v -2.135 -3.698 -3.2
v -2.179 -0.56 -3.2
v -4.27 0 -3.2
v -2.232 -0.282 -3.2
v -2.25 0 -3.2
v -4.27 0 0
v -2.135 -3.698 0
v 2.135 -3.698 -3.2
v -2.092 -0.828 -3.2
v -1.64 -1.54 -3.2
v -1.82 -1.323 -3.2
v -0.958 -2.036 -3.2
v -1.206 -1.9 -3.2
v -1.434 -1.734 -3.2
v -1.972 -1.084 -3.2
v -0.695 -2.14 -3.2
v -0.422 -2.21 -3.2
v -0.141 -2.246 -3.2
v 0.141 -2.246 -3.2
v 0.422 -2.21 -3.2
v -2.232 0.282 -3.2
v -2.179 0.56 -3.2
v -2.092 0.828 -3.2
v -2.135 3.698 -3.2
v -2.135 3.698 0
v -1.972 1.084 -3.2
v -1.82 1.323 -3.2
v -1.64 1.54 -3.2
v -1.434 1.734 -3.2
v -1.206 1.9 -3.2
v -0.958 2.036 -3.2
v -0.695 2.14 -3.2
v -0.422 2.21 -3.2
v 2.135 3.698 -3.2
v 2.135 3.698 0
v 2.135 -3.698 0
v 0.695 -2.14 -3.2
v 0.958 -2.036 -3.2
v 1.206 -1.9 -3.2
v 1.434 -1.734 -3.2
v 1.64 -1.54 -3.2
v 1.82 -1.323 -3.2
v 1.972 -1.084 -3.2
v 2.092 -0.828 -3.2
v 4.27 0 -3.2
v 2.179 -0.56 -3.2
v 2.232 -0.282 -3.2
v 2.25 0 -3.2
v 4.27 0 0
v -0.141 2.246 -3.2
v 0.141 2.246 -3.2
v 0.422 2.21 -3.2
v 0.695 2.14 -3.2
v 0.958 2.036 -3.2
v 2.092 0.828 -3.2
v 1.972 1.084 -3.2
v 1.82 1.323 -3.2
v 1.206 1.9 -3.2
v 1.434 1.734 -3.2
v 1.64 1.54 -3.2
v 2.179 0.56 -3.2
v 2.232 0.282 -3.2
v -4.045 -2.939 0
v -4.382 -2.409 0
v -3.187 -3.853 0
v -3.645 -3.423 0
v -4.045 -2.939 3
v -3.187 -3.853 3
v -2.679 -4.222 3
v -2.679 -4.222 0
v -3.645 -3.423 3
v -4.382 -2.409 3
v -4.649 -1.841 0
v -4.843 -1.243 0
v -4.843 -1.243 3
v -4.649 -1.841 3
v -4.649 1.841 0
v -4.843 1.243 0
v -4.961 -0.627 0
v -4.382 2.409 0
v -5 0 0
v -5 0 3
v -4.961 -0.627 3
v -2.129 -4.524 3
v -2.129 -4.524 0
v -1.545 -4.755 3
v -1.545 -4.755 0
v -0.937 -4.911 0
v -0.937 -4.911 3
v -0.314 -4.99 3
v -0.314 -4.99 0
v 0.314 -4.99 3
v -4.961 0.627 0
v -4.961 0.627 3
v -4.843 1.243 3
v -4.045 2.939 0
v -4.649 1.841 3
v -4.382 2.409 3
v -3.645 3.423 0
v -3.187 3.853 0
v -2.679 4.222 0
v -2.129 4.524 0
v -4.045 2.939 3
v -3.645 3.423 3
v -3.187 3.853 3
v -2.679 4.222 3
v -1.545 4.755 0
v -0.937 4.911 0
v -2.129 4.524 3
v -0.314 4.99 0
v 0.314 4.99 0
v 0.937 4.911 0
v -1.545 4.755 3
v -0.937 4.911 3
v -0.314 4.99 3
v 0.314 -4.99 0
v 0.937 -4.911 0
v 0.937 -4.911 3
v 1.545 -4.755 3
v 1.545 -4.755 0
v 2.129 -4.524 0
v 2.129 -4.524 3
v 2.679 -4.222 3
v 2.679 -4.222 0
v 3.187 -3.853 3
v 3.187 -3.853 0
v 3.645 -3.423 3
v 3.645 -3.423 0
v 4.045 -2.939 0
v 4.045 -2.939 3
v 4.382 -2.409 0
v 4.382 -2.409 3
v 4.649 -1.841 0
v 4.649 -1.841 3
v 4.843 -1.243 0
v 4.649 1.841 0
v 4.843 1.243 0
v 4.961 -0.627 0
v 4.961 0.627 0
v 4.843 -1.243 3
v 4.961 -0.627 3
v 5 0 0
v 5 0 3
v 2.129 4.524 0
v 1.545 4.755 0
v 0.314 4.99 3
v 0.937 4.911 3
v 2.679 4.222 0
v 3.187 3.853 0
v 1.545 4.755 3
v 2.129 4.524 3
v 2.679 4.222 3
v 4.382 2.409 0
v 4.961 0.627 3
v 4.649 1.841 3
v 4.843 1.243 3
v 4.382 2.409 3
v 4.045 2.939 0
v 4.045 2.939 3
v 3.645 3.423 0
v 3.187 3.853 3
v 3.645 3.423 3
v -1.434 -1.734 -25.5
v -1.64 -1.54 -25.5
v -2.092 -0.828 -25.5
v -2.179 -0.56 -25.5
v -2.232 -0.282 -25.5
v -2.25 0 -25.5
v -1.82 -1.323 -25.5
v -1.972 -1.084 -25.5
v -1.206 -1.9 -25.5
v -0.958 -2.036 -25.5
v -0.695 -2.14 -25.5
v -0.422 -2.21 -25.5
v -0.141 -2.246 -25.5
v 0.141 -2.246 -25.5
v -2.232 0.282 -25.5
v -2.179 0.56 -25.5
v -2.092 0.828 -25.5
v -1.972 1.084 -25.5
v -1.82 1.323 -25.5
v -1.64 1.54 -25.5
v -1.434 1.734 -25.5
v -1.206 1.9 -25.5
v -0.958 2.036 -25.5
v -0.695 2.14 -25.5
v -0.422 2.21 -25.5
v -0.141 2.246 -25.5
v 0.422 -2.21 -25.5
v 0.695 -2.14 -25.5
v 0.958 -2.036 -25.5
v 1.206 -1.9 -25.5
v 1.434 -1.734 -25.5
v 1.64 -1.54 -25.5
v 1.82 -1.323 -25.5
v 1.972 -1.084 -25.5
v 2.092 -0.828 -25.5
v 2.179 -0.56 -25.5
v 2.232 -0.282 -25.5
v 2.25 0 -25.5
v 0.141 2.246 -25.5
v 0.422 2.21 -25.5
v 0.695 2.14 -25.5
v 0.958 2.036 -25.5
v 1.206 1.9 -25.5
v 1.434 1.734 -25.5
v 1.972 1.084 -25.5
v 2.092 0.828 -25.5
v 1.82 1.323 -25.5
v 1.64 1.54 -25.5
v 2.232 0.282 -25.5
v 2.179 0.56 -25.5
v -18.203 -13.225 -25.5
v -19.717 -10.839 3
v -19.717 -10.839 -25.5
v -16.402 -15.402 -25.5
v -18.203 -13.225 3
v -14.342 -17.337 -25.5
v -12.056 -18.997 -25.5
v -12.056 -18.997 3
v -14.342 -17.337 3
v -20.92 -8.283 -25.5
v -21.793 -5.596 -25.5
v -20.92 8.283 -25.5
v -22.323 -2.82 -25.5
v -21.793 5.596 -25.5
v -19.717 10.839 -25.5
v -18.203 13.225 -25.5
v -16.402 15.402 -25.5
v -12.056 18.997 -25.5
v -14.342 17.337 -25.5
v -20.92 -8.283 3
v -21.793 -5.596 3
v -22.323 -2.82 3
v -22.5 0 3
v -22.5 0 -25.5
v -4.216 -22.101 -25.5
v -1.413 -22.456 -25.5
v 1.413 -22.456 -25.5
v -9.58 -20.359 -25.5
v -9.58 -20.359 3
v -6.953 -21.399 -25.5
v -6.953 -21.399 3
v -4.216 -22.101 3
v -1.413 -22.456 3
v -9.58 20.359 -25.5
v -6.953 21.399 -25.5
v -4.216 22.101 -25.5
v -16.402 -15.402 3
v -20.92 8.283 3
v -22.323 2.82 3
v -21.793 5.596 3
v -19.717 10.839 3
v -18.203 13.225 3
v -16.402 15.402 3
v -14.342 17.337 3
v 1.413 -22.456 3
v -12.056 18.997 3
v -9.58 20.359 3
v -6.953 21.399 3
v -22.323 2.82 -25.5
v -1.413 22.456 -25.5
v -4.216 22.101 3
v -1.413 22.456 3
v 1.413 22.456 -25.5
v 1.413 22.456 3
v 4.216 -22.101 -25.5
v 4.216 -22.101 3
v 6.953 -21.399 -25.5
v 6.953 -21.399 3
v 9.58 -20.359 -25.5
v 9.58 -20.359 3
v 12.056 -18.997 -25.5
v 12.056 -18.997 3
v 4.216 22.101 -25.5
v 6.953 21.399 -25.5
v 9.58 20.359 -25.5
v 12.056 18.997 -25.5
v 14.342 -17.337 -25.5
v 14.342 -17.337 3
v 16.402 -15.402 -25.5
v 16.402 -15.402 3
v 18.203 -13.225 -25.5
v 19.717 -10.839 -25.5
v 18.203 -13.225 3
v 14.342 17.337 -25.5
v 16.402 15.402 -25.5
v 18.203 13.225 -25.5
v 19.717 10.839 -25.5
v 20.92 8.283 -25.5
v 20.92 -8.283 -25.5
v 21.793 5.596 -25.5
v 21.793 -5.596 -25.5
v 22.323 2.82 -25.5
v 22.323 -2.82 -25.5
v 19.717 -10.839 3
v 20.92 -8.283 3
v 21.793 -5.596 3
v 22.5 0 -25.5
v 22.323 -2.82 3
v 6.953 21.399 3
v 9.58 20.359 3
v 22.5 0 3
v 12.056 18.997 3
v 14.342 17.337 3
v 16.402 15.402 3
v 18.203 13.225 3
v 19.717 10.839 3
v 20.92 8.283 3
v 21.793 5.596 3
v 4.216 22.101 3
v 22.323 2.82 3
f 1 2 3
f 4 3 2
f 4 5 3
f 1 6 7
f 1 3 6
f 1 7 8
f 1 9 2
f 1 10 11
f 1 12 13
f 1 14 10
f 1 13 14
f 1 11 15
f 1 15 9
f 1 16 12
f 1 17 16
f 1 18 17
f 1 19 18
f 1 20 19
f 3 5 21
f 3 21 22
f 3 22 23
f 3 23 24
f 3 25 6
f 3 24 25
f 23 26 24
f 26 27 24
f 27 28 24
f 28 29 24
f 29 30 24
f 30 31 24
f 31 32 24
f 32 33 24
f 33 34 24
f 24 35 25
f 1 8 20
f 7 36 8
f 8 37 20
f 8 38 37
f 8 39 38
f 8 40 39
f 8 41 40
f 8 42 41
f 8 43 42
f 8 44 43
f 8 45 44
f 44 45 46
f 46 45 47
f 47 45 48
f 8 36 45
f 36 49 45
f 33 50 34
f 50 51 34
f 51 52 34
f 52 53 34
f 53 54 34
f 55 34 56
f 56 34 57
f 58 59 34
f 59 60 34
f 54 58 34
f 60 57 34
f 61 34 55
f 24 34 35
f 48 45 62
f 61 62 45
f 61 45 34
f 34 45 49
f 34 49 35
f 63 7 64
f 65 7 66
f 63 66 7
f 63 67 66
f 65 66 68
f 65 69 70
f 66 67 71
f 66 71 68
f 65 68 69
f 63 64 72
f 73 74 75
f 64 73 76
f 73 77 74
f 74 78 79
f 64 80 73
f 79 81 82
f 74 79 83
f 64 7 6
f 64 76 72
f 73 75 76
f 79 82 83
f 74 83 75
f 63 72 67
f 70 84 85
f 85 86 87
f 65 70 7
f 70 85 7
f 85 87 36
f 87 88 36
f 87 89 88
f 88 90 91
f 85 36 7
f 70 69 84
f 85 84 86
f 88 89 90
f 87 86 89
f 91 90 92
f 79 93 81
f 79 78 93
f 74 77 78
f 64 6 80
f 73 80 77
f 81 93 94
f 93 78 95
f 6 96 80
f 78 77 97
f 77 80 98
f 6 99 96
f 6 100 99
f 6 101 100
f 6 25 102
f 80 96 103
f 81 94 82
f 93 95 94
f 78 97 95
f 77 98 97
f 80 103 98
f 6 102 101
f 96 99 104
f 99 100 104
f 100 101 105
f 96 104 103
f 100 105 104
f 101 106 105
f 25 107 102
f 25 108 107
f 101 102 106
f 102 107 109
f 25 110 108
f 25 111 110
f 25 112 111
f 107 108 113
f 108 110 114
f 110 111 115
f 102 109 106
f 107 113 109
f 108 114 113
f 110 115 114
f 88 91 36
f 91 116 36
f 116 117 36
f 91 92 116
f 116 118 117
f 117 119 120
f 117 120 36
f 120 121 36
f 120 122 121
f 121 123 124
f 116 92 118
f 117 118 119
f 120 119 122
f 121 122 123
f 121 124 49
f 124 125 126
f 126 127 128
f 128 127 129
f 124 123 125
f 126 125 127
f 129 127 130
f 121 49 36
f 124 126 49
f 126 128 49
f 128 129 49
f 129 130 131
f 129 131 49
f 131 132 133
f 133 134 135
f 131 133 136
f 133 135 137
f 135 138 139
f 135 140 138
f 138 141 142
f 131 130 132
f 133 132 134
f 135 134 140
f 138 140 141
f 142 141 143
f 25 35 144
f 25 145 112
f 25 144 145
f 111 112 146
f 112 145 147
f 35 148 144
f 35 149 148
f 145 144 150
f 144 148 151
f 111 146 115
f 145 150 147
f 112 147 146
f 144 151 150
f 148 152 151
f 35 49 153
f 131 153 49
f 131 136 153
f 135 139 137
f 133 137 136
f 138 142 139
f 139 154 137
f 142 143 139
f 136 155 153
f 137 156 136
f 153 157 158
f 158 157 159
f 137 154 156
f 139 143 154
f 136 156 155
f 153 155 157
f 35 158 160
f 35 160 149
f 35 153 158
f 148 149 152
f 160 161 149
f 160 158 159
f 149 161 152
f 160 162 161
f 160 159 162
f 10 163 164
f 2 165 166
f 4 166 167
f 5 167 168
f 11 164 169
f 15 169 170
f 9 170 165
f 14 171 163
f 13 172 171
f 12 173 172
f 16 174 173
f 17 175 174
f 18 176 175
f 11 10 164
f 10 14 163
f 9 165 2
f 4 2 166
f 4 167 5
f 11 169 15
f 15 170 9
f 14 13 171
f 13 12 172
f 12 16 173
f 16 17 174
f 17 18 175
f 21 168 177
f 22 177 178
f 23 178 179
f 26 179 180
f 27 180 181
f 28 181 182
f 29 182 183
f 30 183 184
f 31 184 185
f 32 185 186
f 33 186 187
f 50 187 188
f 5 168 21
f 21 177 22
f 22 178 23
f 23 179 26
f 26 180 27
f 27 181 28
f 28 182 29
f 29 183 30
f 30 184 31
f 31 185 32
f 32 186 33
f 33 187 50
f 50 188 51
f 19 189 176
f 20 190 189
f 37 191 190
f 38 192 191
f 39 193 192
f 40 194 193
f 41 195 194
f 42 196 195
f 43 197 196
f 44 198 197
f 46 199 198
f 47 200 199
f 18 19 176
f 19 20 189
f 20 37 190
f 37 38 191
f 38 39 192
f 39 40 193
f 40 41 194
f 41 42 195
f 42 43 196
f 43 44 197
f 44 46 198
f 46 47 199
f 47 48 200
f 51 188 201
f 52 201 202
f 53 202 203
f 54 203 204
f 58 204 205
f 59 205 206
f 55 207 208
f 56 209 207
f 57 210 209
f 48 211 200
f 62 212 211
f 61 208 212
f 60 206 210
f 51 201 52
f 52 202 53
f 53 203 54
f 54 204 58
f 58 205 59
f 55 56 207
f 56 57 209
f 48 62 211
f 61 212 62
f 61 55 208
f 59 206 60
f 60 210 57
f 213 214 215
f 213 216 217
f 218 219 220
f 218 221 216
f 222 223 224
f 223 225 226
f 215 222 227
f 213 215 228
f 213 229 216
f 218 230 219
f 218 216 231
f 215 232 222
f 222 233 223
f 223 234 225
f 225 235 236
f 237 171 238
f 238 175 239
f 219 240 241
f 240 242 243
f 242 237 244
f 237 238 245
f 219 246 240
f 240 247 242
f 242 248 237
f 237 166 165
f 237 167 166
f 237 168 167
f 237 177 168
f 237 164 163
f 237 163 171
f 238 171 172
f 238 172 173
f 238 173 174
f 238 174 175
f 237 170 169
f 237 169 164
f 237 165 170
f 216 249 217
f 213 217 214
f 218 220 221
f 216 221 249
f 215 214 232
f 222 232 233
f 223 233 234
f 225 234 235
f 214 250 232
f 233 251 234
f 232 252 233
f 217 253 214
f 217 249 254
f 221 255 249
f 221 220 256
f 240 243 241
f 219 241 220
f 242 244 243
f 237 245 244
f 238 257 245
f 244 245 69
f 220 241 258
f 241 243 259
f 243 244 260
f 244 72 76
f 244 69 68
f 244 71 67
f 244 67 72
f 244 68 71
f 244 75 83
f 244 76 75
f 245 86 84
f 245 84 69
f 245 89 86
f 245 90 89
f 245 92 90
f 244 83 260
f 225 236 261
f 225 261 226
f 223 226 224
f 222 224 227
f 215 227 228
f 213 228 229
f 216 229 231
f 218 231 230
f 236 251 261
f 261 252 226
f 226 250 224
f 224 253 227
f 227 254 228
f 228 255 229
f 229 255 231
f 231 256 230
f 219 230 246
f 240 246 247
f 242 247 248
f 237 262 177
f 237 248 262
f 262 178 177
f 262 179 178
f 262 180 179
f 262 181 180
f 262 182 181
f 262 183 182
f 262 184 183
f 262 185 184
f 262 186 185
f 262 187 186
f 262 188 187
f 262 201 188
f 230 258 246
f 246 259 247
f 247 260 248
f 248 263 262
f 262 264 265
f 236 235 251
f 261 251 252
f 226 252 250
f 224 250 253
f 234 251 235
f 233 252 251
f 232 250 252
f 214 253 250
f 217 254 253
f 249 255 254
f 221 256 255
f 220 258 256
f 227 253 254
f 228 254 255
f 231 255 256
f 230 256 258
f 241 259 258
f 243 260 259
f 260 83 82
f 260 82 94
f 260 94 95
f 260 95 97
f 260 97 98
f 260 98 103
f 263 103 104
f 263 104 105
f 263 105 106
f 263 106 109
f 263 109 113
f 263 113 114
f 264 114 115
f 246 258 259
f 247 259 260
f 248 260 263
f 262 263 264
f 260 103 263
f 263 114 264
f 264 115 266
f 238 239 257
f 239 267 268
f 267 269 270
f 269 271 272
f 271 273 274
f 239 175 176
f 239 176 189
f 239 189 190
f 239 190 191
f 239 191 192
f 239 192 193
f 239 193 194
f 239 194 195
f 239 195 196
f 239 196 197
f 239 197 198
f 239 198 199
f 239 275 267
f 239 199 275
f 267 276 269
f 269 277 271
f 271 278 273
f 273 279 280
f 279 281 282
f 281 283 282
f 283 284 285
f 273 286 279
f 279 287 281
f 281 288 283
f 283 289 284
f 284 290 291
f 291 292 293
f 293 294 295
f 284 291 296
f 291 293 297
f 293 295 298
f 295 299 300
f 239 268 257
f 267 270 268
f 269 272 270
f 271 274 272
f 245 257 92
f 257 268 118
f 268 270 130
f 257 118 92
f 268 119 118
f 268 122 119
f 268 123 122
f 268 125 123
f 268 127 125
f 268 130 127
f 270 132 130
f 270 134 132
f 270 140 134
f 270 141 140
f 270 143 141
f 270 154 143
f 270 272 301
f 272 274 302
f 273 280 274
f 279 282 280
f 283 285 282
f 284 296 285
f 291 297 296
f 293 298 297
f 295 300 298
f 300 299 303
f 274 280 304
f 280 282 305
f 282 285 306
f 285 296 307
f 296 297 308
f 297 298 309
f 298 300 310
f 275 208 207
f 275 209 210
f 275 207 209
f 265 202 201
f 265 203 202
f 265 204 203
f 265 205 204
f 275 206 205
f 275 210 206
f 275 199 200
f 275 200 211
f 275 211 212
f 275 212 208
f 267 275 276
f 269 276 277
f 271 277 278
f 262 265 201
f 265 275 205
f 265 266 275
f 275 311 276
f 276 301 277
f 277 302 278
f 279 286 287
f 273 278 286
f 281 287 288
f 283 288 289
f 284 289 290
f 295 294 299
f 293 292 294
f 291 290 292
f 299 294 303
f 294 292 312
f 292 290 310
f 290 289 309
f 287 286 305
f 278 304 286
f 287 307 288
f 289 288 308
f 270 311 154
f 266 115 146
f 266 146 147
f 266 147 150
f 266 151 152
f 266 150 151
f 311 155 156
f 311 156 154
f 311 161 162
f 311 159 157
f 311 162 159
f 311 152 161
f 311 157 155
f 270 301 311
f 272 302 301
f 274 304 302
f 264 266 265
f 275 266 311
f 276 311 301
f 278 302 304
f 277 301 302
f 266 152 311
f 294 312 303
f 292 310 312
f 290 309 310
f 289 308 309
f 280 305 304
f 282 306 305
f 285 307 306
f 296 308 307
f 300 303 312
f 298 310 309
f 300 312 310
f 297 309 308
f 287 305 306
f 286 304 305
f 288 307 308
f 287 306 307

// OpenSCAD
$fn = 50;


difference() {
	union() {
		translate(v = [0, 0, -25.5000000000]) {
			cylinder(h = 28.5000000000, r = 22.5000000000);
		}
	}
	union() {
		translate(v = [0, 0, 0]) {
			rotate(a = [0, 0, 0]) {
				difference() {
					union() {
						translate(v = [0, 0, -3.2000000000]) {
							linear_extrude(height = 3.2000000000) {
								polygon(points = [[4.2698000000, 0.0000000000], [2.1349000000, 3.6977552691], [-2.1349000000, 3.6977552691], [-4.2698000000, 0.0000000000], [-2.1349000000, -3.6977552691], [2.1349000000, -3.6977552691]]);
							}
						}
					}
					union();
				}
			}
		}
		#cylinder(h = 3, r = 5.0000000000);
		#translate(v = [0, 0, -100.0000000000]) {
			cylinder(h = 200, r = 2.2500000000);
		}
	}
}
